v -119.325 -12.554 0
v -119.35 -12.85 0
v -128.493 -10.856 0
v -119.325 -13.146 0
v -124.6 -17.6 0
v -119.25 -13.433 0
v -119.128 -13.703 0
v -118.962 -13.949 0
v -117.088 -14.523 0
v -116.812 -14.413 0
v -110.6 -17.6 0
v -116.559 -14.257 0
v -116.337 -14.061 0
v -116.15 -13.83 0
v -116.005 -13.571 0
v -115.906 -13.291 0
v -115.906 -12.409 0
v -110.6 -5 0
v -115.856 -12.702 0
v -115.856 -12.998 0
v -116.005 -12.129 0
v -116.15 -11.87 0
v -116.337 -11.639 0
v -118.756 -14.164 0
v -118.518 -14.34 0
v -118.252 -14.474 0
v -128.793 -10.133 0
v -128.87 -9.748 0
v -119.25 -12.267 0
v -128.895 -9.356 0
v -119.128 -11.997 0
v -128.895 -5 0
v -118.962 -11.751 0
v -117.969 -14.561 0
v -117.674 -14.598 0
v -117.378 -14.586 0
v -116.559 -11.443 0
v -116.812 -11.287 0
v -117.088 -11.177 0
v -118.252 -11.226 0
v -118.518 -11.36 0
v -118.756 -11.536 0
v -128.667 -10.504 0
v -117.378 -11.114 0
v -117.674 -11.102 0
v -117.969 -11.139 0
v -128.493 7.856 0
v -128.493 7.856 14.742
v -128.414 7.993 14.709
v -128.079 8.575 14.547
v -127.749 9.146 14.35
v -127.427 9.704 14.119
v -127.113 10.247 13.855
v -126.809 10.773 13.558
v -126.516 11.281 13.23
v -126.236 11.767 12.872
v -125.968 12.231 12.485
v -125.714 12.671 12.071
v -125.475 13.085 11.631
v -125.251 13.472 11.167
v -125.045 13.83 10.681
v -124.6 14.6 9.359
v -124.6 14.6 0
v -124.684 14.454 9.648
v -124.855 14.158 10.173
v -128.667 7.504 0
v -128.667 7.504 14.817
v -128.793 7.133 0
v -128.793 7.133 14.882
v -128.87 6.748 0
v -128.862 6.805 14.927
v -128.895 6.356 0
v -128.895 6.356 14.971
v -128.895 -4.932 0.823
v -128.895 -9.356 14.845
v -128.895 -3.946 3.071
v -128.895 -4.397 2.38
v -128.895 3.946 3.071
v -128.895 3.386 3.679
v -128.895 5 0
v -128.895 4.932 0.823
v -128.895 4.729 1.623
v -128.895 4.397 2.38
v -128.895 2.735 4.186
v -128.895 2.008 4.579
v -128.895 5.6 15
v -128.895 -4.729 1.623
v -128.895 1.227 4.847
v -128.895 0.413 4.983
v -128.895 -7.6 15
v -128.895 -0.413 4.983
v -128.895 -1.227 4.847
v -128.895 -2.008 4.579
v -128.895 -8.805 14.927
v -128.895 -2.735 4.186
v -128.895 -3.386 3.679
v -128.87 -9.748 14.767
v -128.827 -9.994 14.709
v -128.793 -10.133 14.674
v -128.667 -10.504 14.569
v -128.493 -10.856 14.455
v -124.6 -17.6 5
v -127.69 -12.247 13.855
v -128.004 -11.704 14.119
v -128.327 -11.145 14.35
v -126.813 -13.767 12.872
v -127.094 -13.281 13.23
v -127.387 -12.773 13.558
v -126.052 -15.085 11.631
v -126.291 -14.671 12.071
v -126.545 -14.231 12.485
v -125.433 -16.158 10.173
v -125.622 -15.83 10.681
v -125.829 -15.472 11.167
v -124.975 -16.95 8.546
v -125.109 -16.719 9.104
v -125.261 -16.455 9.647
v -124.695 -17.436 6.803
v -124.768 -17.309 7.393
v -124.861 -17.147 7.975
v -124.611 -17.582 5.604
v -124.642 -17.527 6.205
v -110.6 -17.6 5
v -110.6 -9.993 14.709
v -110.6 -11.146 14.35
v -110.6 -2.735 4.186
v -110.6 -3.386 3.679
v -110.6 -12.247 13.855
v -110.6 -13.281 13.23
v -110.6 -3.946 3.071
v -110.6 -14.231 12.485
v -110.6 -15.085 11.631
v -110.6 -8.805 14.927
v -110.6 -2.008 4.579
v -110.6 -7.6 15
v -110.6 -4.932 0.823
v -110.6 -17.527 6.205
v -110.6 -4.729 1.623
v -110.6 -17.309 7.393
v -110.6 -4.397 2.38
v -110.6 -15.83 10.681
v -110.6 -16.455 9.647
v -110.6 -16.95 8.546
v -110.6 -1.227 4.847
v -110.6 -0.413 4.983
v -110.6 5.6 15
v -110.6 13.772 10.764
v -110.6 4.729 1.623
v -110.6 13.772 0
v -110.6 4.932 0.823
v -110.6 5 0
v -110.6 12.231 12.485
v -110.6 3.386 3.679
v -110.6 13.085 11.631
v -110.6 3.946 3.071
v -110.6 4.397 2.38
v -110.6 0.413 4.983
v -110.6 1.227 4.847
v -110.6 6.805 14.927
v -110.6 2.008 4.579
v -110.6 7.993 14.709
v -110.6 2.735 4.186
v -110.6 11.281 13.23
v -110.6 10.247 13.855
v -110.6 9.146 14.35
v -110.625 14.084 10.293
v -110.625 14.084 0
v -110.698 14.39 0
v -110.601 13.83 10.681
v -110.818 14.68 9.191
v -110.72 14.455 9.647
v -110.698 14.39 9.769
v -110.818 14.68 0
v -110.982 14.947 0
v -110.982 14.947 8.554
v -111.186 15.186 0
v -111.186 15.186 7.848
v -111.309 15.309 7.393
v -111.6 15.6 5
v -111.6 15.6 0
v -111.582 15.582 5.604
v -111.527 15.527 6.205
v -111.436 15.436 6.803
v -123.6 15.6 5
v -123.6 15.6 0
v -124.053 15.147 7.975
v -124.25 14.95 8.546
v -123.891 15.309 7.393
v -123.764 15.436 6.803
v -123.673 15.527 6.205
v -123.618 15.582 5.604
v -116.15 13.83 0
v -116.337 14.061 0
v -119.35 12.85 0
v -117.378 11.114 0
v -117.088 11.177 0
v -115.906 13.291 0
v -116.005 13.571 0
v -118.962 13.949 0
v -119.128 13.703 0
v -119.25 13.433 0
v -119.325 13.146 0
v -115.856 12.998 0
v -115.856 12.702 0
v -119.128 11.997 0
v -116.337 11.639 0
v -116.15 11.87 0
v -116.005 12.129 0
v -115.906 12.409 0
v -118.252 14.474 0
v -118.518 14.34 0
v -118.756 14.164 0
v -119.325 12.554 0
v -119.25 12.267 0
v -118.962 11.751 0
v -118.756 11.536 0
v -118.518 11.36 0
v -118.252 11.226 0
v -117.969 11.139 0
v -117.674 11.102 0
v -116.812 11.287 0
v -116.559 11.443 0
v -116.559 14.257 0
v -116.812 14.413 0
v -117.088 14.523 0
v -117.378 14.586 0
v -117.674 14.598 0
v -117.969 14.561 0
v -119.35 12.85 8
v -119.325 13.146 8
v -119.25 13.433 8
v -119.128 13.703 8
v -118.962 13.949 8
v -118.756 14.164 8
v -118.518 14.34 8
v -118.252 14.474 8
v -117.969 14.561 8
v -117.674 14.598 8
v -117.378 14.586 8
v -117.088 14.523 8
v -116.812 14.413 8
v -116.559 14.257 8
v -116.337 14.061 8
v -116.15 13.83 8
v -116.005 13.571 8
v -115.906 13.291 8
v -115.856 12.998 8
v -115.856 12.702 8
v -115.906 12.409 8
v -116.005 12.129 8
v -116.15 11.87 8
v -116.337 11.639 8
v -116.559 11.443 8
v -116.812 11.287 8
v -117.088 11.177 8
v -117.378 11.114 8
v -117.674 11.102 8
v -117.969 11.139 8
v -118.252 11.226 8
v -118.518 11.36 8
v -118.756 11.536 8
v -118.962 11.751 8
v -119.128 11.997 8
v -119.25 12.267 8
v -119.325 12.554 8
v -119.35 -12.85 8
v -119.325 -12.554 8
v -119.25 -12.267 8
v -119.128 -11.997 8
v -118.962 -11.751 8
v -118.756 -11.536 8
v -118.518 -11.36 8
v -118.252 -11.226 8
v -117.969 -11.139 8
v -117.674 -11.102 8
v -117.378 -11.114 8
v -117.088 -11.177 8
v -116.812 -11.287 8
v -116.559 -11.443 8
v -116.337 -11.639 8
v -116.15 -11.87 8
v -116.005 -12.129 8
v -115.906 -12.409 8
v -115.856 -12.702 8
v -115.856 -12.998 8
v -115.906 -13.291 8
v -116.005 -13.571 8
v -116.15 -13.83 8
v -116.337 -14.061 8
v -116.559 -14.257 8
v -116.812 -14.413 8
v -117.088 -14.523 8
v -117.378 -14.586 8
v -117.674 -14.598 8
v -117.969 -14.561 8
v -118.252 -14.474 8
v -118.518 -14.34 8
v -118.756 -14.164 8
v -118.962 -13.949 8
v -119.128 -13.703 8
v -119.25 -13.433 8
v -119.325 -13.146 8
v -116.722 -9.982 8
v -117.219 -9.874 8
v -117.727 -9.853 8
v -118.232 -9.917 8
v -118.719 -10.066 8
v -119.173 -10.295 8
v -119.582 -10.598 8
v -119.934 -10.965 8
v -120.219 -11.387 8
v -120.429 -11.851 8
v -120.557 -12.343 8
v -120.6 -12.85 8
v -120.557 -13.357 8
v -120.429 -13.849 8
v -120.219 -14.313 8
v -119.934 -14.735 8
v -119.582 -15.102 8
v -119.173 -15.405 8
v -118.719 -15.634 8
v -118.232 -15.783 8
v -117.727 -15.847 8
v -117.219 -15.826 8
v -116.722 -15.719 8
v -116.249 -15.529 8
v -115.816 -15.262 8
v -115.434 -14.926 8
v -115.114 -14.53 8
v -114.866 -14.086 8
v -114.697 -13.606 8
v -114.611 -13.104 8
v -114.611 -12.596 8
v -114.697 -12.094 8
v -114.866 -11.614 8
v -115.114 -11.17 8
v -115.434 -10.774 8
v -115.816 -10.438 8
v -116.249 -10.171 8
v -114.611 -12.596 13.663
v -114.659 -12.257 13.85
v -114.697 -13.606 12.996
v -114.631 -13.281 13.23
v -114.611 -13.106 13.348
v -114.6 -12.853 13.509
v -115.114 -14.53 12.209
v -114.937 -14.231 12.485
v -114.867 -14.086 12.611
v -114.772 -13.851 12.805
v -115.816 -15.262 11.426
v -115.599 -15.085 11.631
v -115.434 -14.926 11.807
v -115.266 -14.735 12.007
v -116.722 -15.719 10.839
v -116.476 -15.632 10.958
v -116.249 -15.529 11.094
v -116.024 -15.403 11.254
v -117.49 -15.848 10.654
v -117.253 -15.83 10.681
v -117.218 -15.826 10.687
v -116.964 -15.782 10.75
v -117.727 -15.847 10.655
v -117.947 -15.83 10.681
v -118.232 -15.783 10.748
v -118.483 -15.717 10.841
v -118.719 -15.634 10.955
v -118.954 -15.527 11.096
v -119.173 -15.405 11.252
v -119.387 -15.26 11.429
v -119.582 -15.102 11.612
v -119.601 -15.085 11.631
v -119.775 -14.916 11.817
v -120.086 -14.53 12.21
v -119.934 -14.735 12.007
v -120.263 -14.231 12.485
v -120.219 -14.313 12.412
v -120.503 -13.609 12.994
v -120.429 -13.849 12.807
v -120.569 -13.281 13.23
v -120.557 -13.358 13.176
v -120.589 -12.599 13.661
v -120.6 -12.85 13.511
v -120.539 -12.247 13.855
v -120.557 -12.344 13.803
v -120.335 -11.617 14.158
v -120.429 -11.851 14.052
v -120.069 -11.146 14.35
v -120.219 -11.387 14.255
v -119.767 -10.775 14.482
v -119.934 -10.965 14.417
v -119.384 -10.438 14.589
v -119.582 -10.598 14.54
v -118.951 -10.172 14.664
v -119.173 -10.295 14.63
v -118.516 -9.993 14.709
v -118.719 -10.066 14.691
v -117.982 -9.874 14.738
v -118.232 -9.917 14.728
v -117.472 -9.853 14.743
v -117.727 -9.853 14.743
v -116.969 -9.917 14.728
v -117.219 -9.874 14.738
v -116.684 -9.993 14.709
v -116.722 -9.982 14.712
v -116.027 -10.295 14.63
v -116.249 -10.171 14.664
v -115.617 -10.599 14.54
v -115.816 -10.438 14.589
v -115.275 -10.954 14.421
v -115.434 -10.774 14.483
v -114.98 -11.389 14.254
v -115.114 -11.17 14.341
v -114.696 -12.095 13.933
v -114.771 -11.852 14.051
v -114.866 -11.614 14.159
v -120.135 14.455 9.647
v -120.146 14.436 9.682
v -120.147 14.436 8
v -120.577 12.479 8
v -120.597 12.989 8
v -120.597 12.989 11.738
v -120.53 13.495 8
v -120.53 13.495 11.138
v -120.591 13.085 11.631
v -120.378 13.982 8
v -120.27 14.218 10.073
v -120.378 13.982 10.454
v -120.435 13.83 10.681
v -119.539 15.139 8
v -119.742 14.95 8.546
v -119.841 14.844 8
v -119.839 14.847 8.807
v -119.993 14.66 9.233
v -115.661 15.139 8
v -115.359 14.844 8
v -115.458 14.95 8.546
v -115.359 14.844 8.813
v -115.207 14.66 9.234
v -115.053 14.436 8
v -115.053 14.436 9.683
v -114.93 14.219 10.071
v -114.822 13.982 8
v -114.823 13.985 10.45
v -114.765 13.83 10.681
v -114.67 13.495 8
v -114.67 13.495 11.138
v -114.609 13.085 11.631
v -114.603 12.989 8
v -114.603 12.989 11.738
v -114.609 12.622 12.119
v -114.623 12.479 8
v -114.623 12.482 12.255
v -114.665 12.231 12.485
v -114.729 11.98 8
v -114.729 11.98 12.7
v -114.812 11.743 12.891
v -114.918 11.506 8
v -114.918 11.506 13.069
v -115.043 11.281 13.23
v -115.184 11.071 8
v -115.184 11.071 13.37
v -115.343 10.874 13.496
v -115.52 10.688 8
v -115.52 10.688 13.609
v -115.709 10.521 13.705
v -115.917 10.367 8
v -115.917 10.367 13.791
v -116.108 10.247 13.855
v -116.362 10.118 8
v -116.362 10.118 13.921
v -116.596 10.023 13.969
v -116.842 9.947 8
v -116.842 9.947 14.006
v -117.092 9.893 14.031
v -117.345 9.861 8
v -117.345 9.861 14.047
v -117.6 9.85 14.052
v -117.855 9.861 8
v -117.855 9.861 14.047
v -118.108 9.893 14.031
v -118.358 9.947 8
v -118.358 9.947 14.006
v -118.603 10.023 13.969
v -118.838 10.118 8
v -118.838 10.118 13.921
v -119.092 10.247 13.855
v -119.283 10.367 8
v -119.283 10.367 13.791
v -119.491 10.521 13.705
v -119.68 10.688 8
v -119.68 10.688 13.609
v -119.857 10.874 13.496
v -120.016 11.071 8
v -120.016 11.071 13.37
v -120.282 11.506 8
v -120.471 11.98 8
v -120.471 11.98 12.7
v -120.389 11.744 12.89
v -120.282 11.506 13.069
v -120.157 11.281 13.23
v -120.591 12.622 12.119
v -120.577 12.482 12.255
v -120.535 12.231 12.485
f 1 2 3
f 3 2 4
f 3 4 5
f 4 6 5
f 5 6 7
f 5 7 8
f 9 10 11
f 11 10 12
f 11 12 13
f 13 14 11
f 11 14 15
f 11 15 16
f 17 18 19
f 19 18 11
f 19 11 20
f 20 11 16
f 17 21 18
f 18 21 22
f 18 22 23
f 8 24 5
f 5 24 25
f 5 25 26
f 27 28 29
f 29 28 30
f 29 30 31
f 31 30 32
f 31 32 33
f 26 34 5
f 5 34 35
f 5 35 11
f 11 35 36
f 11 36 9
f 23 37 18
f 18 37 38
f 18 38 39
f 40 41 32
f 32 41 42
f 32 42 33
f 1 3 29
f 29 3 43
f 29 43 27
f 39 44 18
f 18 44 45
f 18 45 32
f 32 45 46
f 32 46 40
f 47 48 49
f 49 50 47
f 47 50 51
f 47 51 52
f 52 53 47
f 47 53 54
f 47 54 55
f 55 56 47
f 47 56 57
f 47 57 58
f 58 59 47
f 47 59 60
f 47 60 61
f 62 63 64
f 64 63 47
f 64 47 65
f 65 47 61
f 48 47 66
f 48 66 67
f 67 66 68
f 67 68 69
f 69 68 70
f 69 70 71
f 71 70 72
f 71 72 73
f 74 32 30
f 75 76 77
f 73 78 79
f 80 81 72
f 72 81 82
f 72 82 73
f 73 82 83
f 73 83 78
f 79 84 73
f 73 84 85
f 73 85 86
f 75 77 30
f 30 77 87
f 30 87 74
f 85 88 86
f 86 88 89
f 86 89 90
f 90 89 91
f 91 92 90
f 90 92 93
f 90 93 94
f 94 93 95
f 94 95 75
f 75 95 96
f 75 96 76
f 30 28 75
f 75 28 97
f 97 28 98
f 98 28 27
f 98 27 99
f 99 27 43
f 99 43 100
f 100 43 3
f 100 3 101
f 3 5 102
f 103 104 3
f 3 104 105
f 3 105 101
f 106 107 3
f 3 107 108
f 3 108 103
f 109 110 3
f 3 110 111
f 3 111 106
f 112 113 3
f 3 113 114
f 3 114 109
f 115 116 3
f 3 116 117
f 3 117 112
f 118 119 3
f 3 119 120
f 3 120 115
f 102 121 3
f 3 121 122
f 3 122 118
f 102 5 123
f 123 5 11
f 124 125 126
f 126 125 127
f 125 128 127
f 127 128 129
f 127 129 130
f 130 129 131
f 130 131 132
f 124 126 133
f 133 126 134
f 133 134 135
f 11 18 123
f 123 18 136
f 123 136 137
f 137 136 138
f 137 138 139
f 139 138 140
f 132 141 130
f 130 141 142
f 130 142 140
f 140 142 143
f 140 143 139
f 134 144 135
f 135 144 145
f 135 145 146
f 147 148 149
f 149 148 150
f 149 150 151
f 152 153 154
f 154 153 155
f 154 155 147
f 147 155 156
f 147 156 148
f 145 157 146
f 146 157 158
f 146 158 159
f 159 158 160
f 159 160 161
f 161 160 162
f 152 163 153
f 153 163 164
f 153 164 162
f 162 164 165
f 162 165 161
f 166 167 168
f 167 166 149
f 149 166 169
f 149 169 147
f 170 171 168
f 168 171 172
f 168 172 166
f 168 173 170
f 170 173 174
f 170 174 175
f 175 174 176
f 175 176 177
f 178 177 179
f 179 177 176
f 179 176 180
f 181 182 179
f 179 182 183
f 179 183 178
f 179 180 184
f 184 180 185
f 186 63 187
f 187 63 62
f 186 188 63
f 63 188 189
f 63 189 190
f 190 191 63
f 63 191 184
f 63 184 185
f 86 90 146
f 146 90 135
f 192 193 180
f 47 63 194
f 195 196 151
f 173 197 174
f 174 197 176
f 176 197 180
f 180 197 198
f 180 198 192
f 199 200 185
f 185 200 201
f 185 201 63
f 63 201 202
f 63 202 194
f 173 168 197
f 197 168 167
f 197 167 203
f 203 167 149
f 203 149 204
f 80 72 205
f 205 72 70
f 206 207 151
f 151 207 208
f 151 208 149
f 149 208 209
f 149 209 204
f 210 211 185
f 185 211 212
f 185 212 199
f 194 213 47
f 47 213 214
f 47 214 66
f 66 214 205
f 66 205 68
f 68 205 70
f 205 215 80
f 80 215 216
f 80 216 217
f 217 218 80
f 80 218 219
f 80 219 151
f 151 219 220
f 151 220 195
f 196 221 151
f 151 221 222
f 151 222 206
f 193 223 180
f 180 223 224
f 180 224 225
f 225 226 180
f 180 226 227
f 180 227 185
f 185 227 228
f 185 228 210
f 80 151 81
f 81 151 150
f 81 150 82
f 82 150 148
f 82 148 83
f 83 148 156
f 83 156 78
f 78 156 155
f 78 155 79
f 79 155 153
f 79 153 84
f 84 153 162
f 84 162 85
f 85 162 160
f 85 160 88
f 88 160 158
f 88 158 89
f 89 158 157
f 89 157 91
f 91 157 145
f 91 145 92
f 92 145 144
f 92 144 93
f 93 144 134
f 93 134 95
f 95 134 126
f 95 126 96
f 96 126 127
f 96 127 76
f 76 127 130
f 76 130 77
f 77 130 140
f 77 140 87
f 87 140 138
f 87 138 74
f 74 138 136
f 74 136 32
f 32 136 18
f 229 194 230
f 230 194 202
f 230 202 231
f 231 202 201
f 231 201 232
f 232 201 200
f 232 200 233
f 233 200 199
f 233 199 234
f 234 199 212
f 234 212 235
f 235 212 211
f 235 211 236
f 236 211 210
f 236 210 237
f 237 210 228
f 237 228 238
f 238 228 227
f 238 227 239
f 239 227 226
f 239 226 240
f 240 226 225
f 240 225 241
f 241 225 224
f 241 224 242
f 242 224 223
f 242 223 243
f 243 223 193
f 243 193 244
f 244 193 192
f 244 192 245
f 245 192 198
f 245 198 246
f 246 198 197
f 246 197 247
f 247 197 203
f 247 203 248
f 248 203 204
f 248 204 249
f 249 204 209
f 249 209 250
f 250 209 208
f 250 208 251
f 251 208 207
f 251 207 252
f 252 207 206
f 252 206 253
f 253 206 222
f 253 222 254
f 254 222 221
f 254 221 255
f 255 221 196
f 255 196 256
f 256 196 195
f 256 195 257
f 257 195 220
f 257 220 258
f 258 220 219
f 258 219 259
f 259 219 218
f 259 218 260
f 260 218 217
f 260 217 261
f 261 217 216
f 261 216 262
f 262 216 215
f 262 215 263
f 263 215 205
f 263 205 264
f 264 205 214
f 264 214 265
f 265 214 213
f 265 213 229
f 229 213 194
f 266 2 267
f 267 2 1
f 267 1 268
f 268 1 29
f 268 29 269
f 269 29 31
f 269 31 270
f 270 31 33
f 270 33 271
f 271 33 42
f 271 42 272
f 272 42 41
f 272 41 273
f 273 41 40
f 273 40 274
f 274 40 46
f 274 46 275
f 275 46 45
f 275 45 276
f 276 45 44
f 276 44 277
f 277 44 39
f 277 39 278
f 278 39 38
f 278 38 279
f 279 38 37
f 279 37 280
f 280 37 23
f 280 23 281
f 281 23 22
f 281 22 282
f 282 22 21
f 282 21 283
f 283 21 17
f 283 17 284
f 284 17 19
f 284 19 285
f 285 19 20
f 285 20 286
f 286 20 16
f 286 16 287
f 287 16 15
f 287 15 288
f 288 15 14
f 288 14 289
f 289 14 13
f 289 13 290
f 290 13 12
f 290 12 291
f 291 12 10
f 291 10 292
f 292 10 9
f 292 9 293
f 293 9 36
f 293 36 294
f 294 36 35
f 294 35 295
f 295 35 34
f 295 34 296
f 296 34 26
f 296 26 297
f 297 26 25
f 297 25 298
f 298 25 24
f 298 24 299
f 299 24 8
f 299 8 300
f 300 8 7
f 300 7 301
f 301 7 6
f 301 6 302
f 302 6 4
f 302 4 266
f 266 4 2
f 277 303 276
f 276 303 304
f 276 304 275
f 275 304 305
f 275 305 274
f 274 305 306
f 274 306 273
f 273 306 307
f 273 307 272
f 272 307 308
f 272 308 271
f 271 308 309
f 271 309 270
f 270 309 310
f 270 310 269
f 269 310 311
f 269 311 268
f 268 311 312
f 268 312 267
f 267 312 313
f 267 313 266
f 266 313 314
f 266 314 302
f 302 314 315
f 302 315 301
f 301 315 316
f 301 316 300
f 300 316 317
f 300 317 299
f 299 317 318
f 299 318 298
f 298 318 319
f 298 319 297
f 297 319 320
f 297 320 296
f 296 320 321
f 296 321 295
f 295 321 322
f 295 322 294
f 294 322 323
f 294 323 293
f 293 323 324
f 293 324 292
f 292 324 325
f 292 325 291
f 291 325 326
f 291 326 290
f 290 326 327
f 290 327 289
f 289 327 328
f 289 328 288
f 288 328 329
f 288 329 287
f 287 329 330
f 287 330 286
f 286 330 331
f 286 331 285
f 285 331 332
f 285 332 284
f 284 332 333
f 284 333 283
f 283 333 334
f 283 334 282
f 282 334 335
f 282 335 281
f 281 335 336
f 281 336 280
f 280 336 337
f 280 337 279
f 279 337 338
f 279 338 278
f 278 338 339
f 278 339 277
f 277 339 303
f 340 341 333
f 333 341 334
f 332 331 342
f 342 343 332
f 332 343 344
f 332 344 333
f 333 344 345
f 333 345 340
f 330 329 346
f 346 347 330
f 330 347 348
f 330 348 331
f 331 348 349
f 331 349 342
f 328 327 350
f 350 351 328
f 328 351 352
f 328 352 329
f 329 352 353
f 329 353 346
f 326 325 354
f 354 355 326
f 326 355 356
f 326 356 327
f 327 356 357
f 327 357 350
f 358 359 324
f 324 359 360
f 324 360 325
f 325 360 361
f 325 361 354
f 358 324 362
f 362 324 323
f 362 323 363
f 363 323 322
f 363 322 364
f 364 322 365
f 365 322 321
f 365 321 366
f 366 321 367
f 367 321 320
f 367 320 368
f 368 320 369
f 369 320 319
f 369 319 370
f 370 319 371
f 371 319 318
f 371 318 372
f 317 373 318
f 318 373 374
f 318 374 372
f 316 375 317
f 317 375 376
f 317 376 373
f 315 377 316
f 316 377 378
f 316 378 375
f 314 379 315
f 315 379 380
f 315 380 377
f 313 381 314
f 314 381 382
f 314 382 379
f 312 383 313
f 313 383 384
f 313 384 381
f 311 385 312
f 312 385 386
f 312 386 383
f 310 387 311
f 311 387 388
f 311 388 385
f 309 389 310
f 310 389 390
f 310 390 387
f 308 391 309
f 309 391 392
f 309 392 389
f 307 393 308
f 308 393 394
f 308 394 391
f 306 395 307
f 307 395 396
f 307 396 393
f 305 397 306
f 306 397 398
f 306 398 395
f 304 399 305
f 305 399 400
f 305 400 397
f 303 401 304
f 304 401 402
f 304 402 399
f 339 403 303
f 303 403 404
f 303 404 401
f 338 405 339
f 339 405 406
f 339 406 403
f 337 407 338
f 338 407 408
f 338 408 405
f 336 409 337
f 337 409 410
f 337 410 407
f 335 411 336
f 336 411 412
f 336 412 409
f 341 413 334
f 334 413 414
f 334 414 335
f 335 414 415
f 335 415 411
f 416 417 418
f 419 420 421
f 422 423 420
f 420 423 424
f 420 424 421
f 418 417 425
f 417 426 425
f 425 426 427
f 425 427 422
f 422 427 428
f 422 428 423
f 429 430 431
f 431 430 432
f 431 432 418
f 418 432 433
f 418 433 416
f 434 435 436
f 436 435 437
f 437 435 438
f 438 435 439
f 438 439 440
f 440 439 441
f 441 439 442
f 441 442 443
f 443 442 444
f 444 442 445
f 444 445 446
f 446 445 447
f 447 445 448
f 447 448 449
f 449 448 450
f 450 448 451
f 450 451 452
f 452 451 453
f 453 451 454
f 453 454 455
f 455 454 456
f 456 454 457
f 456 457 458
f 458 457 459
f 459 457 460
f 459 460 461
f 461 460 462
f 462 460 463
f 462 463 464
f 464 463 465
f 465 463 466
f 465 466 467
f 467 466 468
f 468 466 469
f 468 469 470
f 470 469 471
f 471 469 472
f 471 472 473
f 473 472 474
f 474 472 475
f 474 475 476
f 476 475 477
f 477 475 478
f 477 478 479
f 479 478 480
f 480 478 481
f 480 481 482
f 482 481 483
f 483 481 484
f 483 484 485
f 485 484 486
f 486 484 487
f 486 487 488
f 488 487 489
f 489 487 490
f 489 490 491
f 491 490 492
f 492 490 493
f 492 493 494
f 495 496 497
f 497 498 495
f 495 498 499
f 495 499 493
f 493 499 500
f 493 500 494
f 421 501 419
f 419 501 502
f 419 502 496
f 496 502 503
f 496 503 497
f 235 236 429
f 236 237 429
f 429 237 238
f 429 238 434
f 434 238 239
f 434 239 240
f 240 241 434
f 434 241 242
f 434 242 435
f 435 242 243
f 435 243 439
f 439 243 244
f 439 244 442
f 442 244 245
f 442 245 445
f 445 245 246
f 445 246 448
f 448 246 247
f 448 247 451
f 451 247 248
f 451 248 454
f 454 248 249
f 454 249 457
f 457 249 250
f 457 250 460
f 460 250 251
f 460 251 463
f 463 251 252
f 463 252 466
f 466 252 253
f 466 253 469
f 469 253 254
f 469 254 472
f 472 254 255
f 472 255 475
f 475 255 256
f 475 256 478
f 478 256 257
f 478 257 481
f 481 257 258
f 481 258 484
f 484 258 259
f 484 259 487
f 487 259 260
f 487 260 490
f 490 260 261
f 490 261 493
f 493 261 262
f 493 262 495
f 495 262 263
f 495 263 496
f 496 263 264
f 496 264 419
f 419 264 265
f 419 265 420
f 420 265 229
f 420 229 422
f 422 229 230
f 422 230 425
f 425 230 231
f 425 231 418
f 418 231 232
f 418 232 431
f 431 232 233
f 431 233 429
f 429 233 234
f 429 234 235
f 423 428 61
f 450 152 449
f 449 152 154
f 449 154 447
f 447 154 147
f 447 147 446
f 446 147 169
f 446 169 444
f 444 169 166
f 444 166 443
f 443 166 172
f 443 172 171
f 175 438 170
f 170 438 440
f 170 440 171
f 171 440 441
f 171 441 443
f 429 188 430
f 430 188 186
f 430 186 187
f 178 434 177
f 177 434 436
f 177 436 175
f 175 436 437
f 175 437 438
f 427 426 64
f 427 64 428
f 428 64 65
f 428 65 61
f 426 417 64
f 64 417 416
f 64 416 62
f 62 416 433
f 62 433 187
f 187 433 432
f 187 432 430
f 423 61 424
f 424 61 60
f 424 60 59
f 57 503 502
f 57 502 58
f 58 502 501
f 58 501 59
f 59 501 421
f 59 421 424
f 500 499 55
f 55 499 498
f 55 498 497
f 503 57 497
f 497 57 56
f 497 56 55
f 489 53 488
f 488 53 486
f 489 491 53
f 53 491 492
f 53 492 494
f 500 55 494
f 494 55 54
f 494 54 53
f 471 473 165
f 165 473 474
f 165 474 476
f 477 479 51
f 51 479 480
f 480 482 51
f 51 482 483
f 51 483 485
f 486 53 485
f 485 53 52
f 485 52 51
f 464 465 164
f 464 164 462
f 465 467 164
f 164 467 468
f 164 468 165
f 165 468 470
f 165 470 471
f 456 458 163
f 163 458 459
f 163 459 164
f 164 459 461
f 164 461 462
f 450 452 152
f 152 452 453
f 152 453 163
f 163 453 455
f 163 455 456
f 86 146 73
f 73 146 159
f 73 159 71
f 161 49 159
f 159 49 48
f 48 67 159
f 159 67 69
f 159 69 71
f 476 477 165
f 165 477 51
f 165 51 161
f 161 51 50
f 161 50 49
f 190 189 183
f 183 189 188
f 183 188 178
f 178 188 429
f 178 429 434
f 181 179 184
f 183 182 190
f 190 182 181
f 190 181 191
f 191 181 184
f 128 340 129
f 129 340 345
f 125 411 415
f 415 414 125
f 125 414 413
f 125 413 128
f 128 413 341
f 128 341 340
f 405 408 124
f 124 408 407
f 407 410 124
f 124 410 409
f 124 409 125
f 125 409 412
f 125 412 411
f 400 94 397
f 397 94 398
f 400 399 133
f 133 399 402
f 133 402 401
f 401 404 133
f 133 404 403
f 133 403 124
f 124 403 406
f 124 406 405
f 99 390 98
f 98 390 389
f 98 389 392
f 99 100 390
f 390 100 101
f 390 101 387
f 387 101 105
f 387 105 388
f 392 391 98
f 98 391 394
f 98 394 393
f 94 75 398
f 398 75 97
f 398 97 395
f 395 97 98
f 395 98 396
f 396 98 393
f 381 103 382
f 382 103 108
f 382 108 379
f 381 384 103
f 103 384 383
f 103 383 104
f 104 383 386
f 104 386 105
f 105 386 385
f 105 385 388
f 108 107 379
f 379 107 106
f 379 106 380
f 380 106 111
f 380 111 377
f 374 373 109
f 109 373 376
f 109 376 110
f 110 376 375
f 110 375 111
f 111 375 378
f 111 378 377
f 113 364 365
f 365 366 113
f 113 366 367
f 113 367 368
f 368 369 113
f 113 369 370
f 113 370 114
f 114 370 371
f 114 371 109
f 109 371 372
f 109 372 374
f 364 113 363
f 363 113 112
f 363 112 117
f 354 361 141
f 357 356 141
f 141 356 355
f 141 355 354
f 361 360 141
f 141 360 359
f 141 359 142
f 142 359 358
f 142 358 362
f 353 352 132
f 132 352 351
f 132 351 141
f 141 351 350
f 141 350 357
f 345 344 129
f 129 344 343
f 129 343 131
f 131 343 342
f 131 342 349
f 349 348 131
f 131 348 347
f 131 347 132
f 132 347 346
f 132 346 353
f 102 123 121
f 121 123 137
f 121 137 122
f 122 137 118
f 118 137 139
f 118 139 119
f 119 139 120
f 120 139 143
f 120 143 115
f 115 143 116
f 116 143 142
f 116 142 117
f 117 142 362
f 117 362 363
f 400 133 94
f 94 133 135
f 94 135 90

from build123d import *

# Parameters (mm, degrees)
BOSS_EXTRUDE1_DEPTH = 15
SKETCH3_R           = 5
CUT_EXTRUDE1_DEPTH  = 30.486936791
SKETCH5_R           = 1.75
CUT_EXTRUDE3_DEPTH  = 131.953306572
CUT_EXTRUDE4_START  = -8
SKETCH6_R           = 3
CUT_EXTRUDE4_DEPTH  = 123.953306572
FILLET1_START       = -130
FILLET1_DEPTH       = 19.4


with BuildPart() as part:
    # Sketch1 → Boss-Extrude1 (new body)
    with BuildSketch(Plane.XY):
        with BuildLine():
            Line((-124.6, 14.6), (-128.493415545, 7.856406461))
            ThreePointArc((-128.493415545, 7.856406461), (-128.793116813, 7.132863596), (-128.895339334, 6.356406461))
            Line((-128.895339334, 6.356406461), (-128.895339334, -9.356406461))
            ThreePointArc((-128.895339334, -9.356406461), (-128.793116813, -10.132863596), (-128.493415545, -10.856406461))
            Line((-128.493415545, -10.856406461), (-124.6, -17.6))
            Line((-124.6, -17.6), (-110.6, -17.6))
            Line((-110.6, -17.6), (-110.6, -5))
            Line((-110.6, -5), (-110.6, 5))
            Line((-110.6, 5), (-110.6, 13.771572875))
            ThreePointArc((-110.6, 13.771572875), (-110.752240935, 14.53693974), (-111.185786438, 15.185786438))
            Line((-111.185786438, 15.185786438), (-111.6, 15.6))
            Line((-111.6, 15.6), (-123.6, 15.6))
            Line((-123.6, 15.6), (-124.6, 14.6))
        make_face()
    extrude(amount=BOSS_EXTRUDE1_DEPTH)

    # Sketch3 → Cut-Extrude1 (cut, through all)
    with BuildSketch(Plane(origin=(-110.6, 0, 0), x_dir=(0, 0, -1), z_dir=(1, 0, 0))):
        Circle(SKETCH3_R)
    extrude(amount=-CUT_EXTRUDE1_DEPTH, mode=Mode.SUBTRACT)

    # Sketch5 → Cut-Extrude3 (cut, through all)
    with BuildSketch(Plane(origin=(0, 0, 0), x_dir=(-1, 0, 0), z_dir=(0, 0, -1))):
        with Locations((117.6, 12.85)):
            Circle(SKETCH5_R)
        with Locations((117.6, -12.85)):
            Circle(SKETCH5_R)
    extrude(amount=-CUT_EXTRUDE3_DEPTH, mode=Mode.SUBTRACT)

    # Sketch6 → Cut-Extrude4 (cut, through all)
    with BuildSketch(Plane(origin=(0, 0, 0), x_dir=(-1, 0, 0), z_dir=(0, 0, -1)).offset(CUT_EXTRUDE4_START)):
        with Locations((117.6, 12.85)):
            Circle(SKETCH6_R)
        with Locations((117.6, -12.85)):
            Circle(SKETCH6_R)
    extrude(amount=-CUT_EXTRUDE4_DEPTH, mode=Mode.SUBTRACT)

    # Fillet1: read off the stored shape, not the designer's step
    # Fillet1 outline → Fillet1 (cut)
    with BuildSketch(Plane.YZ.offset(FILLET1_START)):
        with BuildLine():
            ThreePointArc((-17.6, 5), (-14.671067812, 12.071067812), (-7.6, 15))
            Line((-7.6, 15), (-17.6, 15))
            Line((-17.6, 15), (-17.6, 5))
        make_face()
        with BuildLine():
            ThreePointArc((5.6, 15), (12.671067812, 12.071067812), (15.6, 5))
            Line((15.6, 5), (15.6, 15))
            Line((15.6, 15), (5.6, 15))
        make_face()
    extrude(amount=FILLET1_DEPTH, mode=Mode.SUBTRACT)


solid = part.part
